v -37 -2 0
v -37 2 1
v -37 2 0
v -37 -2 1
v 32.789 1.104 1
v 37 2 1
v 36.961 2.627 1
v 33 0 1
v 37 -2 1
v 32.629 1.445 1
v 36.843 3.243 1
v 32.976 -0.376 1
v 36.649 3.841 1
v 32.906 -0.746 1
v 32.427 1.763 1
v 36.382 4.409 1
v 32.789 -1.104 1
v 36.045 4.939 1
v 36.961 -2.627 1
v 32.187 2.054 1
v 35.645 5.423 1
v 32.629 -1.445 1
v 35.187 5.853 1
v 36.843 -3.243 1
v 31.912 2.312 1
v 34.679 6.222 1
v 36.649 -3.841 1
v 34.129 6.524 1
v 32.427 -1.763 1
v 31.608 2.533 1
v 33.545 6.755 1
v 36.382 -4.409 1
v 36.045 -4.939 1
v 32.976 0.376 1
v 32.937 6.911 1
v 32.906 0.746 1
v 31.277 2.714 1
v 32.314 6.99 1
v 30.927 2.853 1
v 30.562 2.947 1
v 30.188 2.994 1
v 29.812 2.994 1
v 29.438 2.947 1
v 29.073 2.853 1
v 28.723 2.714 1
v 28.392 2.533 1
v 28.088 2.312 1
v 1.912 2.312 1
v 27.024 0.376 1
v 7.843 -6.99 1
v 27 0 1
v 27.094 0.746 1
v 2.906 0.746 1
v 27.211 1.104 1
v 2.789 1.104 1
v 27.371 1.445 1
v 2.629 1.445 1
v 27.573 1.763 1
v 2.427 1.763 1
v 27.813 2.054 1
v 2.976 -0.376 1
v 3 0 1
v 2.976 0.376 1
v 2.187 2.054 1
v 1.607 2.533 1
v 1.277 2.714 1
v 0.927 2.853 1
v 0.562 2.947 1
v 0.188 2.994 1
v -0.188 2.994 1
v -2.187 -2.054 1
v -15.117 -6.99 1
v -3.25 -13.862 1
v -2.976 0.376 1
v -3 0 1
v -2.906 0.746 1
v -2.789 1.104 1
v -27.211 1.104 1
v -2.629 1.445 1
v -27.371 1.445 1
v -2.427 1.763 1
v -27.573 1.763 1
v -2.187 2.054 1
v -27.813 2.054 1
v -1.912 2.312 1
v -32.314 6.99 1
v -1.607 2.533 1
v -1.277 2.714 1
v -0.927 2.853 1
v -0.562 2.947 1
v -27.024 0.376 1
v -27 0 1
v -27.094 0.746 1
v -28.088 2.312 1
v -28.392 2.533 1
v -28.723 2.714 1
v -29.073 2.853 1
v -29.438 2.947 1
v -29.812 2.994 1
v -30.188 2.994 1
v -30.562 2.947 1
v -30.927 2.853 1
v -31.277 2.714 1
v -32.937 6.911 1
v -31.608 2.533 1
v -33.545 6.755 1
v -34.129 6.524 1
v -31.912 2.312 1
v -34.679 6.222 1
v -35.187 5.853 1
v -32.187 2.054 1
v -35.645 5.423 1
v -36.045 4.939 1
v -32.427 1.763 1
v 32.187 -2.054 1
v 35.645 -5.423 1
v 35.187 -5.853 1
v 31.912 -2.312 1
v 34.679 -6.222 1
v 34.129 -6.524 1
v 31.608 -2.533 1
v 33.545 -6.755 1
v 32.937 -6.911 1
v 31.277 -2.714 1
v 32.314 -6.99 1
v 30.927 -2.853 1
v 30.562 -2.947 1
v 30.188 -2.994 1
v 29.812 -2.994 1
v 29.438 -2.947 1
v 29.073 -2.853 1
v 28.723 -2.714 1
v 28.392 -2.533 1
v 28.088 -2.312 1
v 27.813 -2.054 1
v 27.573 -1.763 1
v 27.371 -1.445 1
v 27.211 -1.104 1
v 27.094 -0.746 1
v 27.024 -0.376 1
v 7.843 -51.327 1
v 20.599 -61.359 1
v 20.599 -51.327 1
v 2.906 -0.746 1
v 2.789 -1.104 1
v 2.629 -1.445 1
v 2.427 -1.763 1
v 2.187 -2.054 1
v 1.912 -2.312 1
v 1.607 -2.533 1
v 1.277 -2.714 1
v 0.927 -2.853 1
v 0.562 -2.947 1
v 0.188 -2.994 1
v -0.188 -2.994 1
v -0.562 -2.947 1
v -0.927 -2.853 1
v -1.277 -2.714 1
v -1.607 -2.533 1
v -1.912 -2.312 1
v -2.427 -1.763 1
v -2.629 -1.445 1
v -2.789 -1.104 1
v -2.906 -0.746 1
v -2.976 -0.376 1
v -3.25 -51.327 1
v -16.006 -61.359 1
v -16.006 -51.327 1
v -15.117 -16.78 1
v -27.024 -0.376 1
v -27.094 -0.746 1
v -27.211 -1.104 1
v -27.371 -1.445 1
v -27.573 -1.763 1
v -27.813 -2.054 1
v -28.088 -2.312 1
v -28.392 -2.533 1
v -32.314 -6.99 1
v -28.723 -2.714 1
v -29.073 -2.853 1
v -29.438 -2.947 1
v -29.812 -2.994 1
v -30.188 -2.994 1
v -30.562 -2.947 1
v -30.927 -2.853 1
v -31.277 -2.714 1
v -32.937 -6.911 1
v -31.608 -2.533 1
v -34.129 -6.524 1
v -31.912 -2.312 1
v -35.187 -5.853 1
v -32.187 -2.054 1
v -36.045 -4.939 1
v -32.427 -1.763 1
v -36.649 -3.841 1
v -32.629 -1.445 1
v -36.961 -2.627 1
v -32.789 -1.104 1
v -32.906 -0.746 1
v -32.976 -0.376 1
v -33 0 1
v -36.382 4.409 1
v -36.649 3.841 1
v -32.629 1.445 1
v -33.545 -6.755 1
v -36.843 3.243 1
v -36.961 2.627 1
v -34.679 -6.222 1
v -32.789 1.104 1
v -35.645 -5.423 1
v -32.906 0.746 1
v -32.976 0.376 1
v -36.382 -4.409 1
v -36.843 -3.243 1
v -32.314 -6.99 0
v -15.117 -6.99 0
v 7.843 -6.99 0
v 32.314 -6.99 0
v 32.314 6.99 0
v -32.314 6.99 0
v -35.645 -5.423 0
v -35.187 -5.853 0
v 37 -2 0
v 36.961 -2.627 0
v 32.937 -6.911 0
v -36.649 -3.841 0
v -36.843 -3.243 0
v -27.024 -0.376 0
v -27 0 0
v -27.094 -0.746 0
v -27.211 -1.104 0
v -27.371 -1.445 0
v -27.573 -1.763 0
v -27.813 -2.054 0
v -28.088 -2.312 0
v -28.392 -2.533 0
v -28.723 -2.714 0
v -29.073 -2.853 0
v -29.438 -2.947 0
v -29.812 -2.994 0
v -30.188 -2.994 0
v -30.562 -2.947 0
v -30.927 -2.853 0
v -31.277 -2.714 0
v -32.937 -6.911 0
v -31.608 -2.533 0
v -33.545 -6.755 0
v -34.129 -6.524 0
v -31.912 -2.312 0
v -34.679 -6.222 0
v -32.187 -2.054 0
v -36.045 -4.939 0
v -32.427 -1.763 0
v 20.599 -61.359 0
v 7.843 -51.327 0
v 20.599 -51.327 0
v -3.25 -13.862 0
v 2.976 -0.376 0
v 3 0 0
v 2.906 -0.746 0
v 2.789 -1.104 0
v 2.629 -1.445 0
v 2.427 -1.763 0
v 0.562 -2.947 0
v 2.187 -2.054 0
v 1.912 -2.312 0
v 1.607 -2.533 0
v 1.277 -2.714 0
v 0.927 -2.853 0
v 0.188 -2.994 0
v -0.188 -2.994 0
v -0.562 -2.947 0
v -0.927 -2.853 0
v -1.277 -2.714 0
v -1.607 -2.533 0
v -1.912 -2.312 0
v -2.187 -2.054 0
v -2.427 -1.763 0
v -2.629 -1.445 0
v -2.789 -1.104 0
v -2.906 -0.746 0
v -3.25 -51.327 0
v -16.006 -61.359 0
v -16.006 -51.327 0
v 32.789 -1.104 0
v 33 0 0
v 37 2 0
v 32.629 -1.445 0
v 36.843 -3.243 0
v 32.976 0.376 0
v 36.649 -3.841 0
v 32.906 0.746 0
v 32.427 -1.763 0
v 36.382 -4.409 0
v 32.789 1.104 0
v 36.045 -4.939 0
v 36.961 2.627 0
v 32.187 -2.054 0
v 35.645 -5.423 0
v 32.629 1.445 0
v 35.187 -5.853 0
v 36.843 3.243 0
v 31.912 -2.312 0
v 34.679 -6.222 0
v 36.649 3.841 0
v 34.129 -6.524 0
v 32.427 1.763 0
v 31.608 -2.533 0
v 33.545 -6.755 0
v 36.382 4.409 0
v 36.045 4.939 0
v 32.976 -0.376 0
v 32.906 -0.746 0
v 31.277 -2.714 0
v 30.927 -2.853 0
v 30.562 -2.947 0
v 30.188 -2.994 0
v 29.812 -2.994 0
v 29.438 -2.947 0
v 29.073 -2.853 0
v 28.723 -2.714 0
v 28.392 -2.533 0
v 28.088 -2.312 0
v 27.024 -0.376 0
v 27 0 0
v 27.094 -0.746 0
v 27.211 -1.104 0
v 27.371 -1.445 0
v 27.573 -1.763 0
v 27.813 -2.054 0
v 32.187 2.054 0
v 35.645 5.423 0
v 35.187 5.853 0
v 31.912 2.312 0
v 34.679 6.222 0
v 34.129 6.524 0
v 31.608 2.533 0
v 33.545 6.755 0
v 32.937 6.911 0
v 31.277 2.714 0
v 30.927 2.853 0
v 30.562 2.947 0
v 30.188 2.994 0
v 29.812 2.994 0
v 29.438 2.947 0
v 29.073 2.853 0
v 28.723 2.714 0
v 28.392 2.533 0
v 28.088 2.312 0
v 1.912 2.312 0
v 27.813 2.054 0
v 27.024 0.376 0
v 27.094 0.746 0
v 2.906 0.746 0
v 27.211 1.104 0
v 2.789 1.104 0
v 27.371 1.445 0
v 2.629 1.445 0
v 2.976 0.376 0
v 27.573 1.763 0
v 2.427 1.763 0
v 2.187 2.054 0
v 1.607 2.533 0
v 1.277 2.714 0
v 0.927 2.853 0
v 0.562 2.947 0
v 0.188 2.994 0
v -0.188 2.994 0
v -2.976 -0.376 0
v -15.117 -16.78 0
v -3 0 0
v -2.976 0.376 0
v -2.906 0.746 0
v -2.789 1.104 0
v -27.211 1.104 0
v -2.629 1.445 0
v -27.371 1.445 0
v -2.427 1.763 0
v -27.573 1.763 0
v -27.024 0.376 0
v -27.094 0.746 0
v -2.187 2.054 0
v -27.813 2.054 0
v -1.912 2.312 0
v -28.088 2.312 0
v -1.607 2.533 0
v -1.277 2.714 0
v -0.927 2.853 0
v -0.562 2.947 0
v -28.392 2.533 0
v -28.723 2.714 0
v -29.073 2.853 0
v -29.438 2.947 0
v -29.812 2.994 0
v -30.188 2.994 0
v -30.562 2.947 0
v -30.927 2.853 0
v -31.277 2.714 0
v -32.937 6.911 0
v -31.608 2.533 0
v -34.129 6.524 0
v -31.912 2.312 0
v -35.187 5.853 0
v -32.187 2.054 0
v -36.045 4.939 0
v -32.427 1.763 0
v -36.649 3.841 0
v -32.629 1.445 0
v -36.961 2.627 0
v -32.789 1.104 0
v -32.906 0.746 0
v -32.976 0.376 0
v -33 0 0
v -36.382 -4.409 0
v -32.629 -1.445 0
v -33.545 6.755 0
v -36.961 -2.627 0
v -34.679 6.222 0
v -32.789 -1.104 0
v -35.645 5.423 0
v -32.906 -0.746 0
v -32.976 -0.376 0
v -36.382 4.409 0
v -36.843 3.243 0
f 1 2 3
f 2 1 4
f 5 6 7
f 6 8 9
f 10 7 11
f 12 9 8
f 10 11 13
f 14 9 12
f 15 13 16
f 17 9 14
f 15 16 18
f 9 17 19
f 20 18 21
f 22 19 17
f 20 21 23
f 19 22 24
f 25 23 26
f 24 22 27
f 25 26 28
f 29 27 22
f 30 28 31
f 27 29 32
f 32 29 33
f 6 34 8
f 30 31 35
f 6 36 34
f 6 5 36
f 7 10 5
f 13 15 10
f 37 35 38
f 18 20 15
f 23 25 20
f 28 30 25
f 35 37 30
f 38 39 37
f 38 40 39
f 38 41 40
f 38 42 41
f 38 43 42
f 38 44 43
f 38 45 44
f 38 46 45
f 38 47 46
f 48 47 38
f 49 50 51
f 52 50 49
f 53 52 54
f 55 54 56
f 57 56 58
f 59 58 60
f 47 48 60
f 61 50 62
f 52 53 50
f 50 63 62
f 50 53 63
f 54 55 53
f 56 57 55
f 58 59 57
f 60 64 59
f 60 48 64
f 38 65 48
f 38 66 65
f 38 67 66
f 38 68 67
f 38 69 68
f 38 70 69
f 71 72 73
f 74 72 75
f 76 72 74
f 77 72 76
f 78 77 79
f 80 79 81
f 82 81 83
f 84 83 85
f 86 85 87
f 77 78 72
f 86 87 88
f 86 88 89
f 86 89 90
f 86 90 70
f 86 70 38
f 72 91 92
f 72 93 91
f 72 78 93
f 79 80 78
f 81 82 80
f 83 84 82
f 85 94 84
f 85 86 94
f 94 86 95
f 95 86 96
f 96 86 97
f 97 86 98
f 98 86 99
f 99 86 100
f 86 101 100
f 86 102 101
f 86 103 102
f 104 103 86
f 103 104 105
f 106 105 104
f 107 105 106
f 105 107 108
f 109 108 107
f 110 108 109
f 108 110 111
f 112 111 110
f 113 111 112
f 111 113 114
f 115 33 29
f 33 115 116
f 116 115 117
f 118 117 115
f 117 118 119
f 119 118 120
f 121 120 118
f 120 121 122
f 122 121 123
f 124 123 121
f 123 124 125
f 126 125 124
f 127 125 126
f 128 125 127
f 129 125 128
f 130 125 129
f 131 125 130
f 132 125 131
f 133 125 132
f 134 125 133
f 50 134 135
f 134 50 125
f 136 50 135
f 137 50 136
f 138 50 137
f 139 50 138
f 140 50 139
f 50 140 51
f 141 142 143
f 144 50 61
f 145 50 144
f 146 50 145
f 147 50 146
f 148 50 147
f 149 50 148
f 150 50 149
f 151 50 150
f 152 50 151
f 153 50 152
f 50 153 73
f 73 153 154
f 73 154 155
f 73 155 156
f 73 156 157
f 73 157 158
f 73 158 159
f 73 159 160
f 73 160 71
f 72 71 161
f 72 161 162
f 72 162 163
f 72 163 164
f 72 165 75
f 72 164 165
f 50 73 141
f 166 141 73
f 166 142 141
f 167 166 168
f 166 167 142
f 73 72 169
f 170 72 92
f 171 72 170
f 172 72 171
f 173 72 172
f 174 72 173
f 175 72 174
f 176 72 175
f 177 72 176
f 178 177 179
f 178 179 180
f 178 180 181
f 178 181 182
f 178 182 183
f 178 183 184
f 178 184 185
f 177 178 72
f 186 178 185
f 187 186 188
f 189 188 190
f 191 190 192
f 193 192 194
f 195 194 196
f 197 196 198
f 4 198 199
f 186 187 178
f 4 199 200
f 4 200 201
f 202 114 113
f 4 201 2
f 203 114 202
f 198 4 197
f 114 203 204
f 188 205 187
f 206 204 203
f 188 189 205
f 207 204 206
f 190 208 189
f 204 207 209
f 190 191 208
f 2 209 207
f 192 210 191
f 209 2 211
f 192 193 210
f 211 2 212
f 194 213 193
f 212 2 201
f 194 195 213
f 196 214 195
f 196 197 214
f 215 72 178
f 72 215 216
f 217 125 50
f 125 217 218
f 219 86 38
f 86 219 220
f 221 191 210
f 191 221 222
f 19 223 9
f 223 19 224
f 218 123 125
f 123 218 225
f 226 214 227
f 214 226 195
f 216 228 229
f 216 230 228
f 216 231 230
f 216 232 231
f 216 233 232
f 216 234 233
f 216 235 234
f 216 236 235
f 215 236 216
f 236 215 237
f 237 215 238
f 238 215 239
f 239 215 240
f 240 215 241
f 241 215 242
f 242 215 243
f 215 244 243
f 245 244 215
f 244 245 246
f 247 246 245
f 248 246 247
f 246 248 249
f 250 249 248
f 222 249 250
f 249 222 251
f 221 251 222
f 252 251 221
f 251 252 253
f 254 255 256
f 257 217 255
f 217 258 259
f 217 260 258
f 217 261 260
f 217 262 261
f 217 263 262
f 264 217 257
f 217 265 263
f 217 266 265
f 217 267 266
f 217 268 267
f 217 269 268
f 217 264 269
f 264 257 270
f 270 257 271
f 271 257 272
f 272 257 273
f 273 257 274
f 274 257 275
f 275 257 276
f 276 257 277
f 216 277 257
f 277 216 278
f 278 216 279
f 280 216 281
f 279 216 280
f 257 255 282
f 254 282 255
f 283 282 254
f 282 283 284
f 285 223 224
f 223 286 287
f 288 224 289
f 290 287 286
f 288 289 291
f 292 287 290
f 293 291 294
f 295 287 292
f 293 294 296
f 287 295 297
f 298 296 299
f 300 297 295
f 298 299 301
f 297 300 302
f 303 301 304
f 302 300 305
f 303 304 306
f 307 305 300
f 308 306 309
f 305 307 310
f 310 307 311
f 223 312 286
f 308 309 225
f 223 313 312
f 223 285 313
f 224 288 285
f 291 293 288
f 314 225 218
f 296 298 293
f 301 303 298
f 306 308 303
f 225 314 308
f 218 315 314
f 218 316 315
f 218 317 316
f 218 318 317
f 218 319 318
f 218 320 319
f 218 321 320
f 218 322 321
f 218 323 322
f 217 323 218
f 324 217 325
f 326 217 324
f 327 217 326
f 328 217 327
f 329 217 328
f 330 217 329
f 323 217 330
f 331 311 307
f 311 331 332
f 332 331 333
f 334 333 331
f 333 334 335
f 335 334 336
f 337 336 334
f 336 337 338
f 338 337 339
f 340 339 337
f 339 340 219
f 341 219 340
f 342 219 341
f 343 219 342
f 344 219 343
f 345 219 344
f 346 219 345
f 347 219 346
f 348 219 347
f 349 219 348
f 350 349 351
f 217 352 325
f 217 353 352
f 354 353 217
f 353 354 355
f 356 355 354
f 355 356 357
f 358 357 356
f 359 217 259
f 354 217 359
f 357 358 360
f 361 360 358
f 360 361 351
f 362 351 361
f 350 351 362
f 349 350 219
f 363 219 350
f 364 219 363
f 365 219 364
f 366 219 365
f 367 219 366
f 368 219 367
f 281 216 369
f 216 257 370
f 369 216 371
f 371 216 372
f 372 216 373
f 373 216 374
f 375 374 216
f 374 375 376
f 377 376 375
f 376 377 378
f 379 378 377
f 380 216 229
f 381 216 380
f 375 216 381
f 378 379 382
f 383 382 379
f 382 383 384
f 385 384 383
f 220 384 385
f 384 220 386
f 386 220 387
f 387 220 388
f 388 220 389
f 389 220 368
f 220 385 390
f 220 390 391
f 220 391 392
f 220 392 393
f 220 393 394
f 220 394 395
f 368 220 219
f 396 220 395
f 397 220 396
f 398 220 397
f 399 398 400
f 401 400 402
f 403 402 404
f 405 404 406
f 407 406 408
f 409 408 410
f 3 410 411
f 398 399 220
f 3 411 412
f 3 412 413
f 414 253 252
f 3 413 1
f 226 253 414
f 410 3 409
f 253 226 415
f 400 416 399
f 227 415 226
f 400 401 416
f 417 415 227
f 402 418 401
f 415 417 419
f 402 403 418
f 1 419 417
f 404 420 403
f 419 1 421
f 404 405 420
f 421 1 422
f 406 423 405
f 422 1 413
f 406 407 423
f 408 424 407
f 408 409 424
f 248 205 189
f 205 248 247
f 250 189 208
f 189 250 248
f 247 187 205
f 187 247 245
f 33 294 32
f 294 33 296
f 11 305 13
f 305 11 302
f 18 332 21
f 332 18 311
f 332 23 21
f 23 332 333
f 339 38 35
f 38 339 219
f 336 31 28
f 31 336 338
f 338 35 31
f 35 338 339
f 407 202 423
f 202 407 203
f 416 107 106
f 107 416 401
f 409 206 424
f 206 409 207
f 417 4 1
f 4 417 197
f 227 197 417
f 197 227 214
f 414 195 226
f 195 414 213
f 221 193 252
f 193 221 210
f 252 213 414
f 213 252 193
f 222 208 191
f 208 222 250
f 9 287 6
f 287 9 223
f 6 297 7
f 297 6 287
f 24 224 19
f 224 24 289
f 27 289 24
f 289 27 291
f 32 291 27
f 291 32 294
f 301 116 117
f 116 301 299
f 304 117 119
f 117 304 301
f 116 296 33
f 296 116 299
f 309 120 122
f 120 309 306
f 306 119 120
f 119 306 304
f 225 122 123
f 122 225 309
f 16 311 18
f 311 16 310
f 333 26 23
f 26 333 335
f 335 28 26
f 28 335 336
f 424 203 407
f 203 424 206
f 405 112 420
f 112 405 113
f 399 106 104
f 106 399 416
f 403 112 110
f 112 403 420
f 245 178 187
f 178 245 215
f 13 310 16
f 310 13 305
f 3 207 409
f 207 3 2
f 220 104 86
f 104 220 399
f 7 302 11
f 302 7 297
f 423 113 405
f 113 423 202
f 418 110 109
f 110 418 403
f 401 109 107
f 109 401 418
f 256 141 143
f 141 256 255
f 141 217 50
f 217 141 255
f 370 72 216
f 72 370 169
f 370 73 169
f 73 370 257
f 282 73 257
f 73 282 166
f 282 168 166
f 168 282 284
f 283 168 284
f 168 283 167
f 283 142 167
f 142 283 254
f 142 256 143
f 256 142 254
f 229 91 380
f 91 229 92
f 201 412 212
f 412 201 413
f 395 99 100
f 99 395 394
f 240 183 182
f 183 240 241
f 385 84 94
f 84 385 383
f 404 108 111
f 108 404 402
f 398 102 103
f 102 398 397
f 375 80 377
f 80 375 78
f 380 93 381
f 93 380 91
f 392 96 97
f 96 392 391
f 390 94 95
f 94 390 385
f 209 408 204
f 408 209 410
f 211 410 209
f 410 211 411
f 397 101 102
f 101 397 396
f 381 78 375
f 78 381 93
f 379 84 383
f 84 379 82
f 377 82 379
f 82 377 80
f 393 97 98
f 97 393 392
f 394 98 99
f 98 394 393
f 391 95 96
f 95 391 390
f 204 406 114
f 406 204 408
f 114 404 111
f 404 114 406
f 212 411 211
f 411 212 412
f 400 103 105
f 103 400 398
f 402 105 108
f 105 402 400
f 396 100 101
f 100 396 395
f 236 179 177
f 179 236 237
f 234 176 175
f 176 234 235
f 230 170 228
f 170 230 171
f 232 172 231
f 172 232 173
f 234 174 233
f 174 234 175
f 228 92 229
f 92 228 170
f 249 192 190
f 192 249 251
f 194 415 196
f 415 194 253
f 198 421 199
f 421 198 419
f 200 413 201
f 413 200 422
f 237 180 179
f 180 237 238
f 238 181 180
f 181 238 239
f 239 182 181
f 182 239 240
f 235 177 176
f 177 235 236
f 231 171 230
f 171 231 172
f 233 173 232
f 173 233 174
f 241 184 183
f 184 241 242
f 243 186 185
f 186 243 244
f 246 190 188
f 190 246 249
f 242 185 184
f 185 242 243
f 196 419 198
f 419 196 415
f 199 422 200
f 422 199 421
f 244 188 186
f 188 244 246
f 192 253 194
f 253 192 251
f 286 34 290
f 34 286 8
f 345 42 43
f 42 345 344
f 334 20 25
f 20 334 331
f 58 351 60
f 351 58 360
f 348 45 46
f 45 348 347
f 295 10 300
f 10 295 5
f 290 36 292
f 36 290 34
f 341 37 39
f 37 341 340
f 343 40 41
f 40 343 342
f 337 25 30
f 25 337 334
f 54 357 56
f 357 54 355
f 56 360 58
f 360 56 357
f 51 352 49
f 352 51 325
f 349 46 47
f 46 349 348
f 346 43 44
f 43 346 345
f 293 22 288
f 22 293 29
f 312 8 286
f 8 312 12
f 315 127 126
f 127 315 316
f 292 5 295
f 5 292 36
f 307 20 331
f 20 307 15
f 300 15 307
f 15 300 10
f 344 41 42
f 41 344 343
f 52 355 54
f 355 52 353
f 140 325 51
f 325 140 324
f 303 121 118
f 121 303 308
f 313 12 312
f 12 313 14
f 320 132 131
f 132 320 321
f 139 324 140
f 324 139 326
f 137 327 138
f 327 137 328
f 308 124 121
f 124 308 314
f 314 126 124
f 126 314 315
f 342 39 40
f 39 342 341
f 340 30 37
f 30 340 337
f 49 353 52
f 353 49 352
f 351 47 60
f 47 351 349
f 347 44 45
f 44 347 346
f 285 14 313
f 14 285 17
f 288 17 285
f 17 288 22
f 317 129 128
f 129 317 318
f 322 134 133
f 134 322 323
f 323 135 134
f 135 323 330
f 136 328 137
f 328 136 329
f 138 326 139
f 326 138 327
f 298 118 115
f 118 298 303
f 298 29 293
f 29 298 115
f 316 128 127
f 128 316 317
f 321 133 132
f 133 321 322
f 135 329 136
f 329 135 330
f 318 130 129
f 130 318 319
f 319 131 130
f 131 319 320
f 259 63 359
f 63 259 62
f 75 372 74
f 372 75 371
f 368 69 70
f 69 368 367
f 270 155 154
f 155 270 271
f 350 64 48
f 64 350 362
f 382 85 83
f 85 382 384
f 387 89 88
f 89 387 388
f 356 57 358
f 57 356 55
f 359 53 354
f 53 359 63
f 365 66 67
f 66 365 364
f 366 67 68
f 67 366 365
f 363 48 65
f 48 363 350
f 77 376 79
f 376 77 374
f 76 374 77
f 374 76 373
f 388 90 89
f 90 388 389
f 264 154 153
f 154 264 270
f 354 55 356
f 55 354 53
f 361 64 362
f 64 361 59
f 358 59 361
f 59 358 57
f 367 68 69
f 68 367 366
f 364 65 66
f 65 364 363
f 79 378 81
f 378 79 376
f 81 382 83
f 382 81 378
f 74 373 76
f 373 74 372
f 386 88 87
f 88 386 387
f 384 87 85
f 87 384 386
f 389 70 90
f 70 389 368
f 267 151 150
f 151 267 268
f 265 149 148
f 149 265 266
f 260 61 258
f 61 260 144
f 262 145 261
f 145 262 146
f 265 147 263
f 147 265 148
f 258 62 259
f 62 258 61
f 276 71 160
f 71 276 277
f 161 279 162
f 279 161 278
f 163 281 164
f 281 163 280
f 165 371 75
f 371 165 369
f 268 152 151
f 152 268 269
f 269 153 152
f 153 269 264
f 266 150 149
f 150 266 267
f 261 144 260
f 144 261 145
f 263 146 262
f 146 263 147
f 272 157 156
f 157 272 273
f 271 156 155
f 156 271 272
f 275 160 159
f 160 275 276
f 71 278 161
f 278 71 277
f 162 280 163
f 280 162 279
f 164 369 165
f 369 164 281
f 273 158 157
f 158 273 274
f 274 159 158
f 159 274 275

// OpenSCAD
$fn = 50;


difference() {
	union() {
		translate(v = [0, 0, 0]) {
			rotate(a = [0, 0, 0]) {
				hull() {
					translate(v = [-32.0000000000, 2.0000000000, 0]) {
						rotate(a = [0, 0, 0]) {
							translate(v = [0, 0, 0]) {
								rotate(a = [0, 0, 0]) {
									cylinder(h = 1, r = 5);
								}
							}
						}
					}
					translate(v = [32.0000000000, 2.0000000000, 0]) {
						rotate(a = [0, 0, 0]) {
							translate(v = [0, 0, 0]) {
								rotate(a = [0, 0, 0]) {
									cylinder(h = 1, r = 5);
								}
							}
						}
					}
					translate(v = [-32.0000000000, -2.0000000000, 0]) {
						rotate(a = [0, 0, 0]) {
							translate(v = [0, 0, 0]) {
								rotate(a = [0, 0, 0]) {
									cylinder(h = 1, r = 5);
								}
							}
						}
					}
					translate(v = [32.0000000000, -2.0000000000, 0]) {
						rotate(a = [0, 0, 0]) {
							translate(v = [0, 0, 0]) {
								rotate(a = [0, 0, 0]) {
									cylinder(h = 1, r = 5);
								}
							}
						}
					}
				}
			}
		}
		translate(v = [0, -5, 0]) {
			rotate(a = [0, 0, 0]) {
				linear_extrude(height = 1) {
					text(font = "DejaVu Sans Mono:style=Bold", halign = "center", size = 57.0000000000, text = "1", valign = "top");
				}
			}
		}
	}
	union() {
		translate(v = [-30.0000000000, 0.0000000000, -125.0000000000]) {
			rotate(a = [0, 0, 0]) {
				cylinder(h = 250, r = 3.0000000000);
			}
		}
		translate(v = [30.0000000000, 0.0000000000, -125.0000000000]) {
			rotate(a = [0, 0, 0]) {
				cylinder(h = 250, r = 3.0000000000);
			}
		}
		translate(v = [30.0000000000, 0.0000000000, -125.0000000000]) {
			rotate(a = [0, 0, 0]) {
				cylinder(h = 250, r = 3.0000000000);
			}
		}
		translate(v = [0, 0, -125.0000000000]) {
			rotate(a = [0, 0, 0]) {
				cylinder(h = 250, r = 3.0000000000);
			}
		}
	}
}
